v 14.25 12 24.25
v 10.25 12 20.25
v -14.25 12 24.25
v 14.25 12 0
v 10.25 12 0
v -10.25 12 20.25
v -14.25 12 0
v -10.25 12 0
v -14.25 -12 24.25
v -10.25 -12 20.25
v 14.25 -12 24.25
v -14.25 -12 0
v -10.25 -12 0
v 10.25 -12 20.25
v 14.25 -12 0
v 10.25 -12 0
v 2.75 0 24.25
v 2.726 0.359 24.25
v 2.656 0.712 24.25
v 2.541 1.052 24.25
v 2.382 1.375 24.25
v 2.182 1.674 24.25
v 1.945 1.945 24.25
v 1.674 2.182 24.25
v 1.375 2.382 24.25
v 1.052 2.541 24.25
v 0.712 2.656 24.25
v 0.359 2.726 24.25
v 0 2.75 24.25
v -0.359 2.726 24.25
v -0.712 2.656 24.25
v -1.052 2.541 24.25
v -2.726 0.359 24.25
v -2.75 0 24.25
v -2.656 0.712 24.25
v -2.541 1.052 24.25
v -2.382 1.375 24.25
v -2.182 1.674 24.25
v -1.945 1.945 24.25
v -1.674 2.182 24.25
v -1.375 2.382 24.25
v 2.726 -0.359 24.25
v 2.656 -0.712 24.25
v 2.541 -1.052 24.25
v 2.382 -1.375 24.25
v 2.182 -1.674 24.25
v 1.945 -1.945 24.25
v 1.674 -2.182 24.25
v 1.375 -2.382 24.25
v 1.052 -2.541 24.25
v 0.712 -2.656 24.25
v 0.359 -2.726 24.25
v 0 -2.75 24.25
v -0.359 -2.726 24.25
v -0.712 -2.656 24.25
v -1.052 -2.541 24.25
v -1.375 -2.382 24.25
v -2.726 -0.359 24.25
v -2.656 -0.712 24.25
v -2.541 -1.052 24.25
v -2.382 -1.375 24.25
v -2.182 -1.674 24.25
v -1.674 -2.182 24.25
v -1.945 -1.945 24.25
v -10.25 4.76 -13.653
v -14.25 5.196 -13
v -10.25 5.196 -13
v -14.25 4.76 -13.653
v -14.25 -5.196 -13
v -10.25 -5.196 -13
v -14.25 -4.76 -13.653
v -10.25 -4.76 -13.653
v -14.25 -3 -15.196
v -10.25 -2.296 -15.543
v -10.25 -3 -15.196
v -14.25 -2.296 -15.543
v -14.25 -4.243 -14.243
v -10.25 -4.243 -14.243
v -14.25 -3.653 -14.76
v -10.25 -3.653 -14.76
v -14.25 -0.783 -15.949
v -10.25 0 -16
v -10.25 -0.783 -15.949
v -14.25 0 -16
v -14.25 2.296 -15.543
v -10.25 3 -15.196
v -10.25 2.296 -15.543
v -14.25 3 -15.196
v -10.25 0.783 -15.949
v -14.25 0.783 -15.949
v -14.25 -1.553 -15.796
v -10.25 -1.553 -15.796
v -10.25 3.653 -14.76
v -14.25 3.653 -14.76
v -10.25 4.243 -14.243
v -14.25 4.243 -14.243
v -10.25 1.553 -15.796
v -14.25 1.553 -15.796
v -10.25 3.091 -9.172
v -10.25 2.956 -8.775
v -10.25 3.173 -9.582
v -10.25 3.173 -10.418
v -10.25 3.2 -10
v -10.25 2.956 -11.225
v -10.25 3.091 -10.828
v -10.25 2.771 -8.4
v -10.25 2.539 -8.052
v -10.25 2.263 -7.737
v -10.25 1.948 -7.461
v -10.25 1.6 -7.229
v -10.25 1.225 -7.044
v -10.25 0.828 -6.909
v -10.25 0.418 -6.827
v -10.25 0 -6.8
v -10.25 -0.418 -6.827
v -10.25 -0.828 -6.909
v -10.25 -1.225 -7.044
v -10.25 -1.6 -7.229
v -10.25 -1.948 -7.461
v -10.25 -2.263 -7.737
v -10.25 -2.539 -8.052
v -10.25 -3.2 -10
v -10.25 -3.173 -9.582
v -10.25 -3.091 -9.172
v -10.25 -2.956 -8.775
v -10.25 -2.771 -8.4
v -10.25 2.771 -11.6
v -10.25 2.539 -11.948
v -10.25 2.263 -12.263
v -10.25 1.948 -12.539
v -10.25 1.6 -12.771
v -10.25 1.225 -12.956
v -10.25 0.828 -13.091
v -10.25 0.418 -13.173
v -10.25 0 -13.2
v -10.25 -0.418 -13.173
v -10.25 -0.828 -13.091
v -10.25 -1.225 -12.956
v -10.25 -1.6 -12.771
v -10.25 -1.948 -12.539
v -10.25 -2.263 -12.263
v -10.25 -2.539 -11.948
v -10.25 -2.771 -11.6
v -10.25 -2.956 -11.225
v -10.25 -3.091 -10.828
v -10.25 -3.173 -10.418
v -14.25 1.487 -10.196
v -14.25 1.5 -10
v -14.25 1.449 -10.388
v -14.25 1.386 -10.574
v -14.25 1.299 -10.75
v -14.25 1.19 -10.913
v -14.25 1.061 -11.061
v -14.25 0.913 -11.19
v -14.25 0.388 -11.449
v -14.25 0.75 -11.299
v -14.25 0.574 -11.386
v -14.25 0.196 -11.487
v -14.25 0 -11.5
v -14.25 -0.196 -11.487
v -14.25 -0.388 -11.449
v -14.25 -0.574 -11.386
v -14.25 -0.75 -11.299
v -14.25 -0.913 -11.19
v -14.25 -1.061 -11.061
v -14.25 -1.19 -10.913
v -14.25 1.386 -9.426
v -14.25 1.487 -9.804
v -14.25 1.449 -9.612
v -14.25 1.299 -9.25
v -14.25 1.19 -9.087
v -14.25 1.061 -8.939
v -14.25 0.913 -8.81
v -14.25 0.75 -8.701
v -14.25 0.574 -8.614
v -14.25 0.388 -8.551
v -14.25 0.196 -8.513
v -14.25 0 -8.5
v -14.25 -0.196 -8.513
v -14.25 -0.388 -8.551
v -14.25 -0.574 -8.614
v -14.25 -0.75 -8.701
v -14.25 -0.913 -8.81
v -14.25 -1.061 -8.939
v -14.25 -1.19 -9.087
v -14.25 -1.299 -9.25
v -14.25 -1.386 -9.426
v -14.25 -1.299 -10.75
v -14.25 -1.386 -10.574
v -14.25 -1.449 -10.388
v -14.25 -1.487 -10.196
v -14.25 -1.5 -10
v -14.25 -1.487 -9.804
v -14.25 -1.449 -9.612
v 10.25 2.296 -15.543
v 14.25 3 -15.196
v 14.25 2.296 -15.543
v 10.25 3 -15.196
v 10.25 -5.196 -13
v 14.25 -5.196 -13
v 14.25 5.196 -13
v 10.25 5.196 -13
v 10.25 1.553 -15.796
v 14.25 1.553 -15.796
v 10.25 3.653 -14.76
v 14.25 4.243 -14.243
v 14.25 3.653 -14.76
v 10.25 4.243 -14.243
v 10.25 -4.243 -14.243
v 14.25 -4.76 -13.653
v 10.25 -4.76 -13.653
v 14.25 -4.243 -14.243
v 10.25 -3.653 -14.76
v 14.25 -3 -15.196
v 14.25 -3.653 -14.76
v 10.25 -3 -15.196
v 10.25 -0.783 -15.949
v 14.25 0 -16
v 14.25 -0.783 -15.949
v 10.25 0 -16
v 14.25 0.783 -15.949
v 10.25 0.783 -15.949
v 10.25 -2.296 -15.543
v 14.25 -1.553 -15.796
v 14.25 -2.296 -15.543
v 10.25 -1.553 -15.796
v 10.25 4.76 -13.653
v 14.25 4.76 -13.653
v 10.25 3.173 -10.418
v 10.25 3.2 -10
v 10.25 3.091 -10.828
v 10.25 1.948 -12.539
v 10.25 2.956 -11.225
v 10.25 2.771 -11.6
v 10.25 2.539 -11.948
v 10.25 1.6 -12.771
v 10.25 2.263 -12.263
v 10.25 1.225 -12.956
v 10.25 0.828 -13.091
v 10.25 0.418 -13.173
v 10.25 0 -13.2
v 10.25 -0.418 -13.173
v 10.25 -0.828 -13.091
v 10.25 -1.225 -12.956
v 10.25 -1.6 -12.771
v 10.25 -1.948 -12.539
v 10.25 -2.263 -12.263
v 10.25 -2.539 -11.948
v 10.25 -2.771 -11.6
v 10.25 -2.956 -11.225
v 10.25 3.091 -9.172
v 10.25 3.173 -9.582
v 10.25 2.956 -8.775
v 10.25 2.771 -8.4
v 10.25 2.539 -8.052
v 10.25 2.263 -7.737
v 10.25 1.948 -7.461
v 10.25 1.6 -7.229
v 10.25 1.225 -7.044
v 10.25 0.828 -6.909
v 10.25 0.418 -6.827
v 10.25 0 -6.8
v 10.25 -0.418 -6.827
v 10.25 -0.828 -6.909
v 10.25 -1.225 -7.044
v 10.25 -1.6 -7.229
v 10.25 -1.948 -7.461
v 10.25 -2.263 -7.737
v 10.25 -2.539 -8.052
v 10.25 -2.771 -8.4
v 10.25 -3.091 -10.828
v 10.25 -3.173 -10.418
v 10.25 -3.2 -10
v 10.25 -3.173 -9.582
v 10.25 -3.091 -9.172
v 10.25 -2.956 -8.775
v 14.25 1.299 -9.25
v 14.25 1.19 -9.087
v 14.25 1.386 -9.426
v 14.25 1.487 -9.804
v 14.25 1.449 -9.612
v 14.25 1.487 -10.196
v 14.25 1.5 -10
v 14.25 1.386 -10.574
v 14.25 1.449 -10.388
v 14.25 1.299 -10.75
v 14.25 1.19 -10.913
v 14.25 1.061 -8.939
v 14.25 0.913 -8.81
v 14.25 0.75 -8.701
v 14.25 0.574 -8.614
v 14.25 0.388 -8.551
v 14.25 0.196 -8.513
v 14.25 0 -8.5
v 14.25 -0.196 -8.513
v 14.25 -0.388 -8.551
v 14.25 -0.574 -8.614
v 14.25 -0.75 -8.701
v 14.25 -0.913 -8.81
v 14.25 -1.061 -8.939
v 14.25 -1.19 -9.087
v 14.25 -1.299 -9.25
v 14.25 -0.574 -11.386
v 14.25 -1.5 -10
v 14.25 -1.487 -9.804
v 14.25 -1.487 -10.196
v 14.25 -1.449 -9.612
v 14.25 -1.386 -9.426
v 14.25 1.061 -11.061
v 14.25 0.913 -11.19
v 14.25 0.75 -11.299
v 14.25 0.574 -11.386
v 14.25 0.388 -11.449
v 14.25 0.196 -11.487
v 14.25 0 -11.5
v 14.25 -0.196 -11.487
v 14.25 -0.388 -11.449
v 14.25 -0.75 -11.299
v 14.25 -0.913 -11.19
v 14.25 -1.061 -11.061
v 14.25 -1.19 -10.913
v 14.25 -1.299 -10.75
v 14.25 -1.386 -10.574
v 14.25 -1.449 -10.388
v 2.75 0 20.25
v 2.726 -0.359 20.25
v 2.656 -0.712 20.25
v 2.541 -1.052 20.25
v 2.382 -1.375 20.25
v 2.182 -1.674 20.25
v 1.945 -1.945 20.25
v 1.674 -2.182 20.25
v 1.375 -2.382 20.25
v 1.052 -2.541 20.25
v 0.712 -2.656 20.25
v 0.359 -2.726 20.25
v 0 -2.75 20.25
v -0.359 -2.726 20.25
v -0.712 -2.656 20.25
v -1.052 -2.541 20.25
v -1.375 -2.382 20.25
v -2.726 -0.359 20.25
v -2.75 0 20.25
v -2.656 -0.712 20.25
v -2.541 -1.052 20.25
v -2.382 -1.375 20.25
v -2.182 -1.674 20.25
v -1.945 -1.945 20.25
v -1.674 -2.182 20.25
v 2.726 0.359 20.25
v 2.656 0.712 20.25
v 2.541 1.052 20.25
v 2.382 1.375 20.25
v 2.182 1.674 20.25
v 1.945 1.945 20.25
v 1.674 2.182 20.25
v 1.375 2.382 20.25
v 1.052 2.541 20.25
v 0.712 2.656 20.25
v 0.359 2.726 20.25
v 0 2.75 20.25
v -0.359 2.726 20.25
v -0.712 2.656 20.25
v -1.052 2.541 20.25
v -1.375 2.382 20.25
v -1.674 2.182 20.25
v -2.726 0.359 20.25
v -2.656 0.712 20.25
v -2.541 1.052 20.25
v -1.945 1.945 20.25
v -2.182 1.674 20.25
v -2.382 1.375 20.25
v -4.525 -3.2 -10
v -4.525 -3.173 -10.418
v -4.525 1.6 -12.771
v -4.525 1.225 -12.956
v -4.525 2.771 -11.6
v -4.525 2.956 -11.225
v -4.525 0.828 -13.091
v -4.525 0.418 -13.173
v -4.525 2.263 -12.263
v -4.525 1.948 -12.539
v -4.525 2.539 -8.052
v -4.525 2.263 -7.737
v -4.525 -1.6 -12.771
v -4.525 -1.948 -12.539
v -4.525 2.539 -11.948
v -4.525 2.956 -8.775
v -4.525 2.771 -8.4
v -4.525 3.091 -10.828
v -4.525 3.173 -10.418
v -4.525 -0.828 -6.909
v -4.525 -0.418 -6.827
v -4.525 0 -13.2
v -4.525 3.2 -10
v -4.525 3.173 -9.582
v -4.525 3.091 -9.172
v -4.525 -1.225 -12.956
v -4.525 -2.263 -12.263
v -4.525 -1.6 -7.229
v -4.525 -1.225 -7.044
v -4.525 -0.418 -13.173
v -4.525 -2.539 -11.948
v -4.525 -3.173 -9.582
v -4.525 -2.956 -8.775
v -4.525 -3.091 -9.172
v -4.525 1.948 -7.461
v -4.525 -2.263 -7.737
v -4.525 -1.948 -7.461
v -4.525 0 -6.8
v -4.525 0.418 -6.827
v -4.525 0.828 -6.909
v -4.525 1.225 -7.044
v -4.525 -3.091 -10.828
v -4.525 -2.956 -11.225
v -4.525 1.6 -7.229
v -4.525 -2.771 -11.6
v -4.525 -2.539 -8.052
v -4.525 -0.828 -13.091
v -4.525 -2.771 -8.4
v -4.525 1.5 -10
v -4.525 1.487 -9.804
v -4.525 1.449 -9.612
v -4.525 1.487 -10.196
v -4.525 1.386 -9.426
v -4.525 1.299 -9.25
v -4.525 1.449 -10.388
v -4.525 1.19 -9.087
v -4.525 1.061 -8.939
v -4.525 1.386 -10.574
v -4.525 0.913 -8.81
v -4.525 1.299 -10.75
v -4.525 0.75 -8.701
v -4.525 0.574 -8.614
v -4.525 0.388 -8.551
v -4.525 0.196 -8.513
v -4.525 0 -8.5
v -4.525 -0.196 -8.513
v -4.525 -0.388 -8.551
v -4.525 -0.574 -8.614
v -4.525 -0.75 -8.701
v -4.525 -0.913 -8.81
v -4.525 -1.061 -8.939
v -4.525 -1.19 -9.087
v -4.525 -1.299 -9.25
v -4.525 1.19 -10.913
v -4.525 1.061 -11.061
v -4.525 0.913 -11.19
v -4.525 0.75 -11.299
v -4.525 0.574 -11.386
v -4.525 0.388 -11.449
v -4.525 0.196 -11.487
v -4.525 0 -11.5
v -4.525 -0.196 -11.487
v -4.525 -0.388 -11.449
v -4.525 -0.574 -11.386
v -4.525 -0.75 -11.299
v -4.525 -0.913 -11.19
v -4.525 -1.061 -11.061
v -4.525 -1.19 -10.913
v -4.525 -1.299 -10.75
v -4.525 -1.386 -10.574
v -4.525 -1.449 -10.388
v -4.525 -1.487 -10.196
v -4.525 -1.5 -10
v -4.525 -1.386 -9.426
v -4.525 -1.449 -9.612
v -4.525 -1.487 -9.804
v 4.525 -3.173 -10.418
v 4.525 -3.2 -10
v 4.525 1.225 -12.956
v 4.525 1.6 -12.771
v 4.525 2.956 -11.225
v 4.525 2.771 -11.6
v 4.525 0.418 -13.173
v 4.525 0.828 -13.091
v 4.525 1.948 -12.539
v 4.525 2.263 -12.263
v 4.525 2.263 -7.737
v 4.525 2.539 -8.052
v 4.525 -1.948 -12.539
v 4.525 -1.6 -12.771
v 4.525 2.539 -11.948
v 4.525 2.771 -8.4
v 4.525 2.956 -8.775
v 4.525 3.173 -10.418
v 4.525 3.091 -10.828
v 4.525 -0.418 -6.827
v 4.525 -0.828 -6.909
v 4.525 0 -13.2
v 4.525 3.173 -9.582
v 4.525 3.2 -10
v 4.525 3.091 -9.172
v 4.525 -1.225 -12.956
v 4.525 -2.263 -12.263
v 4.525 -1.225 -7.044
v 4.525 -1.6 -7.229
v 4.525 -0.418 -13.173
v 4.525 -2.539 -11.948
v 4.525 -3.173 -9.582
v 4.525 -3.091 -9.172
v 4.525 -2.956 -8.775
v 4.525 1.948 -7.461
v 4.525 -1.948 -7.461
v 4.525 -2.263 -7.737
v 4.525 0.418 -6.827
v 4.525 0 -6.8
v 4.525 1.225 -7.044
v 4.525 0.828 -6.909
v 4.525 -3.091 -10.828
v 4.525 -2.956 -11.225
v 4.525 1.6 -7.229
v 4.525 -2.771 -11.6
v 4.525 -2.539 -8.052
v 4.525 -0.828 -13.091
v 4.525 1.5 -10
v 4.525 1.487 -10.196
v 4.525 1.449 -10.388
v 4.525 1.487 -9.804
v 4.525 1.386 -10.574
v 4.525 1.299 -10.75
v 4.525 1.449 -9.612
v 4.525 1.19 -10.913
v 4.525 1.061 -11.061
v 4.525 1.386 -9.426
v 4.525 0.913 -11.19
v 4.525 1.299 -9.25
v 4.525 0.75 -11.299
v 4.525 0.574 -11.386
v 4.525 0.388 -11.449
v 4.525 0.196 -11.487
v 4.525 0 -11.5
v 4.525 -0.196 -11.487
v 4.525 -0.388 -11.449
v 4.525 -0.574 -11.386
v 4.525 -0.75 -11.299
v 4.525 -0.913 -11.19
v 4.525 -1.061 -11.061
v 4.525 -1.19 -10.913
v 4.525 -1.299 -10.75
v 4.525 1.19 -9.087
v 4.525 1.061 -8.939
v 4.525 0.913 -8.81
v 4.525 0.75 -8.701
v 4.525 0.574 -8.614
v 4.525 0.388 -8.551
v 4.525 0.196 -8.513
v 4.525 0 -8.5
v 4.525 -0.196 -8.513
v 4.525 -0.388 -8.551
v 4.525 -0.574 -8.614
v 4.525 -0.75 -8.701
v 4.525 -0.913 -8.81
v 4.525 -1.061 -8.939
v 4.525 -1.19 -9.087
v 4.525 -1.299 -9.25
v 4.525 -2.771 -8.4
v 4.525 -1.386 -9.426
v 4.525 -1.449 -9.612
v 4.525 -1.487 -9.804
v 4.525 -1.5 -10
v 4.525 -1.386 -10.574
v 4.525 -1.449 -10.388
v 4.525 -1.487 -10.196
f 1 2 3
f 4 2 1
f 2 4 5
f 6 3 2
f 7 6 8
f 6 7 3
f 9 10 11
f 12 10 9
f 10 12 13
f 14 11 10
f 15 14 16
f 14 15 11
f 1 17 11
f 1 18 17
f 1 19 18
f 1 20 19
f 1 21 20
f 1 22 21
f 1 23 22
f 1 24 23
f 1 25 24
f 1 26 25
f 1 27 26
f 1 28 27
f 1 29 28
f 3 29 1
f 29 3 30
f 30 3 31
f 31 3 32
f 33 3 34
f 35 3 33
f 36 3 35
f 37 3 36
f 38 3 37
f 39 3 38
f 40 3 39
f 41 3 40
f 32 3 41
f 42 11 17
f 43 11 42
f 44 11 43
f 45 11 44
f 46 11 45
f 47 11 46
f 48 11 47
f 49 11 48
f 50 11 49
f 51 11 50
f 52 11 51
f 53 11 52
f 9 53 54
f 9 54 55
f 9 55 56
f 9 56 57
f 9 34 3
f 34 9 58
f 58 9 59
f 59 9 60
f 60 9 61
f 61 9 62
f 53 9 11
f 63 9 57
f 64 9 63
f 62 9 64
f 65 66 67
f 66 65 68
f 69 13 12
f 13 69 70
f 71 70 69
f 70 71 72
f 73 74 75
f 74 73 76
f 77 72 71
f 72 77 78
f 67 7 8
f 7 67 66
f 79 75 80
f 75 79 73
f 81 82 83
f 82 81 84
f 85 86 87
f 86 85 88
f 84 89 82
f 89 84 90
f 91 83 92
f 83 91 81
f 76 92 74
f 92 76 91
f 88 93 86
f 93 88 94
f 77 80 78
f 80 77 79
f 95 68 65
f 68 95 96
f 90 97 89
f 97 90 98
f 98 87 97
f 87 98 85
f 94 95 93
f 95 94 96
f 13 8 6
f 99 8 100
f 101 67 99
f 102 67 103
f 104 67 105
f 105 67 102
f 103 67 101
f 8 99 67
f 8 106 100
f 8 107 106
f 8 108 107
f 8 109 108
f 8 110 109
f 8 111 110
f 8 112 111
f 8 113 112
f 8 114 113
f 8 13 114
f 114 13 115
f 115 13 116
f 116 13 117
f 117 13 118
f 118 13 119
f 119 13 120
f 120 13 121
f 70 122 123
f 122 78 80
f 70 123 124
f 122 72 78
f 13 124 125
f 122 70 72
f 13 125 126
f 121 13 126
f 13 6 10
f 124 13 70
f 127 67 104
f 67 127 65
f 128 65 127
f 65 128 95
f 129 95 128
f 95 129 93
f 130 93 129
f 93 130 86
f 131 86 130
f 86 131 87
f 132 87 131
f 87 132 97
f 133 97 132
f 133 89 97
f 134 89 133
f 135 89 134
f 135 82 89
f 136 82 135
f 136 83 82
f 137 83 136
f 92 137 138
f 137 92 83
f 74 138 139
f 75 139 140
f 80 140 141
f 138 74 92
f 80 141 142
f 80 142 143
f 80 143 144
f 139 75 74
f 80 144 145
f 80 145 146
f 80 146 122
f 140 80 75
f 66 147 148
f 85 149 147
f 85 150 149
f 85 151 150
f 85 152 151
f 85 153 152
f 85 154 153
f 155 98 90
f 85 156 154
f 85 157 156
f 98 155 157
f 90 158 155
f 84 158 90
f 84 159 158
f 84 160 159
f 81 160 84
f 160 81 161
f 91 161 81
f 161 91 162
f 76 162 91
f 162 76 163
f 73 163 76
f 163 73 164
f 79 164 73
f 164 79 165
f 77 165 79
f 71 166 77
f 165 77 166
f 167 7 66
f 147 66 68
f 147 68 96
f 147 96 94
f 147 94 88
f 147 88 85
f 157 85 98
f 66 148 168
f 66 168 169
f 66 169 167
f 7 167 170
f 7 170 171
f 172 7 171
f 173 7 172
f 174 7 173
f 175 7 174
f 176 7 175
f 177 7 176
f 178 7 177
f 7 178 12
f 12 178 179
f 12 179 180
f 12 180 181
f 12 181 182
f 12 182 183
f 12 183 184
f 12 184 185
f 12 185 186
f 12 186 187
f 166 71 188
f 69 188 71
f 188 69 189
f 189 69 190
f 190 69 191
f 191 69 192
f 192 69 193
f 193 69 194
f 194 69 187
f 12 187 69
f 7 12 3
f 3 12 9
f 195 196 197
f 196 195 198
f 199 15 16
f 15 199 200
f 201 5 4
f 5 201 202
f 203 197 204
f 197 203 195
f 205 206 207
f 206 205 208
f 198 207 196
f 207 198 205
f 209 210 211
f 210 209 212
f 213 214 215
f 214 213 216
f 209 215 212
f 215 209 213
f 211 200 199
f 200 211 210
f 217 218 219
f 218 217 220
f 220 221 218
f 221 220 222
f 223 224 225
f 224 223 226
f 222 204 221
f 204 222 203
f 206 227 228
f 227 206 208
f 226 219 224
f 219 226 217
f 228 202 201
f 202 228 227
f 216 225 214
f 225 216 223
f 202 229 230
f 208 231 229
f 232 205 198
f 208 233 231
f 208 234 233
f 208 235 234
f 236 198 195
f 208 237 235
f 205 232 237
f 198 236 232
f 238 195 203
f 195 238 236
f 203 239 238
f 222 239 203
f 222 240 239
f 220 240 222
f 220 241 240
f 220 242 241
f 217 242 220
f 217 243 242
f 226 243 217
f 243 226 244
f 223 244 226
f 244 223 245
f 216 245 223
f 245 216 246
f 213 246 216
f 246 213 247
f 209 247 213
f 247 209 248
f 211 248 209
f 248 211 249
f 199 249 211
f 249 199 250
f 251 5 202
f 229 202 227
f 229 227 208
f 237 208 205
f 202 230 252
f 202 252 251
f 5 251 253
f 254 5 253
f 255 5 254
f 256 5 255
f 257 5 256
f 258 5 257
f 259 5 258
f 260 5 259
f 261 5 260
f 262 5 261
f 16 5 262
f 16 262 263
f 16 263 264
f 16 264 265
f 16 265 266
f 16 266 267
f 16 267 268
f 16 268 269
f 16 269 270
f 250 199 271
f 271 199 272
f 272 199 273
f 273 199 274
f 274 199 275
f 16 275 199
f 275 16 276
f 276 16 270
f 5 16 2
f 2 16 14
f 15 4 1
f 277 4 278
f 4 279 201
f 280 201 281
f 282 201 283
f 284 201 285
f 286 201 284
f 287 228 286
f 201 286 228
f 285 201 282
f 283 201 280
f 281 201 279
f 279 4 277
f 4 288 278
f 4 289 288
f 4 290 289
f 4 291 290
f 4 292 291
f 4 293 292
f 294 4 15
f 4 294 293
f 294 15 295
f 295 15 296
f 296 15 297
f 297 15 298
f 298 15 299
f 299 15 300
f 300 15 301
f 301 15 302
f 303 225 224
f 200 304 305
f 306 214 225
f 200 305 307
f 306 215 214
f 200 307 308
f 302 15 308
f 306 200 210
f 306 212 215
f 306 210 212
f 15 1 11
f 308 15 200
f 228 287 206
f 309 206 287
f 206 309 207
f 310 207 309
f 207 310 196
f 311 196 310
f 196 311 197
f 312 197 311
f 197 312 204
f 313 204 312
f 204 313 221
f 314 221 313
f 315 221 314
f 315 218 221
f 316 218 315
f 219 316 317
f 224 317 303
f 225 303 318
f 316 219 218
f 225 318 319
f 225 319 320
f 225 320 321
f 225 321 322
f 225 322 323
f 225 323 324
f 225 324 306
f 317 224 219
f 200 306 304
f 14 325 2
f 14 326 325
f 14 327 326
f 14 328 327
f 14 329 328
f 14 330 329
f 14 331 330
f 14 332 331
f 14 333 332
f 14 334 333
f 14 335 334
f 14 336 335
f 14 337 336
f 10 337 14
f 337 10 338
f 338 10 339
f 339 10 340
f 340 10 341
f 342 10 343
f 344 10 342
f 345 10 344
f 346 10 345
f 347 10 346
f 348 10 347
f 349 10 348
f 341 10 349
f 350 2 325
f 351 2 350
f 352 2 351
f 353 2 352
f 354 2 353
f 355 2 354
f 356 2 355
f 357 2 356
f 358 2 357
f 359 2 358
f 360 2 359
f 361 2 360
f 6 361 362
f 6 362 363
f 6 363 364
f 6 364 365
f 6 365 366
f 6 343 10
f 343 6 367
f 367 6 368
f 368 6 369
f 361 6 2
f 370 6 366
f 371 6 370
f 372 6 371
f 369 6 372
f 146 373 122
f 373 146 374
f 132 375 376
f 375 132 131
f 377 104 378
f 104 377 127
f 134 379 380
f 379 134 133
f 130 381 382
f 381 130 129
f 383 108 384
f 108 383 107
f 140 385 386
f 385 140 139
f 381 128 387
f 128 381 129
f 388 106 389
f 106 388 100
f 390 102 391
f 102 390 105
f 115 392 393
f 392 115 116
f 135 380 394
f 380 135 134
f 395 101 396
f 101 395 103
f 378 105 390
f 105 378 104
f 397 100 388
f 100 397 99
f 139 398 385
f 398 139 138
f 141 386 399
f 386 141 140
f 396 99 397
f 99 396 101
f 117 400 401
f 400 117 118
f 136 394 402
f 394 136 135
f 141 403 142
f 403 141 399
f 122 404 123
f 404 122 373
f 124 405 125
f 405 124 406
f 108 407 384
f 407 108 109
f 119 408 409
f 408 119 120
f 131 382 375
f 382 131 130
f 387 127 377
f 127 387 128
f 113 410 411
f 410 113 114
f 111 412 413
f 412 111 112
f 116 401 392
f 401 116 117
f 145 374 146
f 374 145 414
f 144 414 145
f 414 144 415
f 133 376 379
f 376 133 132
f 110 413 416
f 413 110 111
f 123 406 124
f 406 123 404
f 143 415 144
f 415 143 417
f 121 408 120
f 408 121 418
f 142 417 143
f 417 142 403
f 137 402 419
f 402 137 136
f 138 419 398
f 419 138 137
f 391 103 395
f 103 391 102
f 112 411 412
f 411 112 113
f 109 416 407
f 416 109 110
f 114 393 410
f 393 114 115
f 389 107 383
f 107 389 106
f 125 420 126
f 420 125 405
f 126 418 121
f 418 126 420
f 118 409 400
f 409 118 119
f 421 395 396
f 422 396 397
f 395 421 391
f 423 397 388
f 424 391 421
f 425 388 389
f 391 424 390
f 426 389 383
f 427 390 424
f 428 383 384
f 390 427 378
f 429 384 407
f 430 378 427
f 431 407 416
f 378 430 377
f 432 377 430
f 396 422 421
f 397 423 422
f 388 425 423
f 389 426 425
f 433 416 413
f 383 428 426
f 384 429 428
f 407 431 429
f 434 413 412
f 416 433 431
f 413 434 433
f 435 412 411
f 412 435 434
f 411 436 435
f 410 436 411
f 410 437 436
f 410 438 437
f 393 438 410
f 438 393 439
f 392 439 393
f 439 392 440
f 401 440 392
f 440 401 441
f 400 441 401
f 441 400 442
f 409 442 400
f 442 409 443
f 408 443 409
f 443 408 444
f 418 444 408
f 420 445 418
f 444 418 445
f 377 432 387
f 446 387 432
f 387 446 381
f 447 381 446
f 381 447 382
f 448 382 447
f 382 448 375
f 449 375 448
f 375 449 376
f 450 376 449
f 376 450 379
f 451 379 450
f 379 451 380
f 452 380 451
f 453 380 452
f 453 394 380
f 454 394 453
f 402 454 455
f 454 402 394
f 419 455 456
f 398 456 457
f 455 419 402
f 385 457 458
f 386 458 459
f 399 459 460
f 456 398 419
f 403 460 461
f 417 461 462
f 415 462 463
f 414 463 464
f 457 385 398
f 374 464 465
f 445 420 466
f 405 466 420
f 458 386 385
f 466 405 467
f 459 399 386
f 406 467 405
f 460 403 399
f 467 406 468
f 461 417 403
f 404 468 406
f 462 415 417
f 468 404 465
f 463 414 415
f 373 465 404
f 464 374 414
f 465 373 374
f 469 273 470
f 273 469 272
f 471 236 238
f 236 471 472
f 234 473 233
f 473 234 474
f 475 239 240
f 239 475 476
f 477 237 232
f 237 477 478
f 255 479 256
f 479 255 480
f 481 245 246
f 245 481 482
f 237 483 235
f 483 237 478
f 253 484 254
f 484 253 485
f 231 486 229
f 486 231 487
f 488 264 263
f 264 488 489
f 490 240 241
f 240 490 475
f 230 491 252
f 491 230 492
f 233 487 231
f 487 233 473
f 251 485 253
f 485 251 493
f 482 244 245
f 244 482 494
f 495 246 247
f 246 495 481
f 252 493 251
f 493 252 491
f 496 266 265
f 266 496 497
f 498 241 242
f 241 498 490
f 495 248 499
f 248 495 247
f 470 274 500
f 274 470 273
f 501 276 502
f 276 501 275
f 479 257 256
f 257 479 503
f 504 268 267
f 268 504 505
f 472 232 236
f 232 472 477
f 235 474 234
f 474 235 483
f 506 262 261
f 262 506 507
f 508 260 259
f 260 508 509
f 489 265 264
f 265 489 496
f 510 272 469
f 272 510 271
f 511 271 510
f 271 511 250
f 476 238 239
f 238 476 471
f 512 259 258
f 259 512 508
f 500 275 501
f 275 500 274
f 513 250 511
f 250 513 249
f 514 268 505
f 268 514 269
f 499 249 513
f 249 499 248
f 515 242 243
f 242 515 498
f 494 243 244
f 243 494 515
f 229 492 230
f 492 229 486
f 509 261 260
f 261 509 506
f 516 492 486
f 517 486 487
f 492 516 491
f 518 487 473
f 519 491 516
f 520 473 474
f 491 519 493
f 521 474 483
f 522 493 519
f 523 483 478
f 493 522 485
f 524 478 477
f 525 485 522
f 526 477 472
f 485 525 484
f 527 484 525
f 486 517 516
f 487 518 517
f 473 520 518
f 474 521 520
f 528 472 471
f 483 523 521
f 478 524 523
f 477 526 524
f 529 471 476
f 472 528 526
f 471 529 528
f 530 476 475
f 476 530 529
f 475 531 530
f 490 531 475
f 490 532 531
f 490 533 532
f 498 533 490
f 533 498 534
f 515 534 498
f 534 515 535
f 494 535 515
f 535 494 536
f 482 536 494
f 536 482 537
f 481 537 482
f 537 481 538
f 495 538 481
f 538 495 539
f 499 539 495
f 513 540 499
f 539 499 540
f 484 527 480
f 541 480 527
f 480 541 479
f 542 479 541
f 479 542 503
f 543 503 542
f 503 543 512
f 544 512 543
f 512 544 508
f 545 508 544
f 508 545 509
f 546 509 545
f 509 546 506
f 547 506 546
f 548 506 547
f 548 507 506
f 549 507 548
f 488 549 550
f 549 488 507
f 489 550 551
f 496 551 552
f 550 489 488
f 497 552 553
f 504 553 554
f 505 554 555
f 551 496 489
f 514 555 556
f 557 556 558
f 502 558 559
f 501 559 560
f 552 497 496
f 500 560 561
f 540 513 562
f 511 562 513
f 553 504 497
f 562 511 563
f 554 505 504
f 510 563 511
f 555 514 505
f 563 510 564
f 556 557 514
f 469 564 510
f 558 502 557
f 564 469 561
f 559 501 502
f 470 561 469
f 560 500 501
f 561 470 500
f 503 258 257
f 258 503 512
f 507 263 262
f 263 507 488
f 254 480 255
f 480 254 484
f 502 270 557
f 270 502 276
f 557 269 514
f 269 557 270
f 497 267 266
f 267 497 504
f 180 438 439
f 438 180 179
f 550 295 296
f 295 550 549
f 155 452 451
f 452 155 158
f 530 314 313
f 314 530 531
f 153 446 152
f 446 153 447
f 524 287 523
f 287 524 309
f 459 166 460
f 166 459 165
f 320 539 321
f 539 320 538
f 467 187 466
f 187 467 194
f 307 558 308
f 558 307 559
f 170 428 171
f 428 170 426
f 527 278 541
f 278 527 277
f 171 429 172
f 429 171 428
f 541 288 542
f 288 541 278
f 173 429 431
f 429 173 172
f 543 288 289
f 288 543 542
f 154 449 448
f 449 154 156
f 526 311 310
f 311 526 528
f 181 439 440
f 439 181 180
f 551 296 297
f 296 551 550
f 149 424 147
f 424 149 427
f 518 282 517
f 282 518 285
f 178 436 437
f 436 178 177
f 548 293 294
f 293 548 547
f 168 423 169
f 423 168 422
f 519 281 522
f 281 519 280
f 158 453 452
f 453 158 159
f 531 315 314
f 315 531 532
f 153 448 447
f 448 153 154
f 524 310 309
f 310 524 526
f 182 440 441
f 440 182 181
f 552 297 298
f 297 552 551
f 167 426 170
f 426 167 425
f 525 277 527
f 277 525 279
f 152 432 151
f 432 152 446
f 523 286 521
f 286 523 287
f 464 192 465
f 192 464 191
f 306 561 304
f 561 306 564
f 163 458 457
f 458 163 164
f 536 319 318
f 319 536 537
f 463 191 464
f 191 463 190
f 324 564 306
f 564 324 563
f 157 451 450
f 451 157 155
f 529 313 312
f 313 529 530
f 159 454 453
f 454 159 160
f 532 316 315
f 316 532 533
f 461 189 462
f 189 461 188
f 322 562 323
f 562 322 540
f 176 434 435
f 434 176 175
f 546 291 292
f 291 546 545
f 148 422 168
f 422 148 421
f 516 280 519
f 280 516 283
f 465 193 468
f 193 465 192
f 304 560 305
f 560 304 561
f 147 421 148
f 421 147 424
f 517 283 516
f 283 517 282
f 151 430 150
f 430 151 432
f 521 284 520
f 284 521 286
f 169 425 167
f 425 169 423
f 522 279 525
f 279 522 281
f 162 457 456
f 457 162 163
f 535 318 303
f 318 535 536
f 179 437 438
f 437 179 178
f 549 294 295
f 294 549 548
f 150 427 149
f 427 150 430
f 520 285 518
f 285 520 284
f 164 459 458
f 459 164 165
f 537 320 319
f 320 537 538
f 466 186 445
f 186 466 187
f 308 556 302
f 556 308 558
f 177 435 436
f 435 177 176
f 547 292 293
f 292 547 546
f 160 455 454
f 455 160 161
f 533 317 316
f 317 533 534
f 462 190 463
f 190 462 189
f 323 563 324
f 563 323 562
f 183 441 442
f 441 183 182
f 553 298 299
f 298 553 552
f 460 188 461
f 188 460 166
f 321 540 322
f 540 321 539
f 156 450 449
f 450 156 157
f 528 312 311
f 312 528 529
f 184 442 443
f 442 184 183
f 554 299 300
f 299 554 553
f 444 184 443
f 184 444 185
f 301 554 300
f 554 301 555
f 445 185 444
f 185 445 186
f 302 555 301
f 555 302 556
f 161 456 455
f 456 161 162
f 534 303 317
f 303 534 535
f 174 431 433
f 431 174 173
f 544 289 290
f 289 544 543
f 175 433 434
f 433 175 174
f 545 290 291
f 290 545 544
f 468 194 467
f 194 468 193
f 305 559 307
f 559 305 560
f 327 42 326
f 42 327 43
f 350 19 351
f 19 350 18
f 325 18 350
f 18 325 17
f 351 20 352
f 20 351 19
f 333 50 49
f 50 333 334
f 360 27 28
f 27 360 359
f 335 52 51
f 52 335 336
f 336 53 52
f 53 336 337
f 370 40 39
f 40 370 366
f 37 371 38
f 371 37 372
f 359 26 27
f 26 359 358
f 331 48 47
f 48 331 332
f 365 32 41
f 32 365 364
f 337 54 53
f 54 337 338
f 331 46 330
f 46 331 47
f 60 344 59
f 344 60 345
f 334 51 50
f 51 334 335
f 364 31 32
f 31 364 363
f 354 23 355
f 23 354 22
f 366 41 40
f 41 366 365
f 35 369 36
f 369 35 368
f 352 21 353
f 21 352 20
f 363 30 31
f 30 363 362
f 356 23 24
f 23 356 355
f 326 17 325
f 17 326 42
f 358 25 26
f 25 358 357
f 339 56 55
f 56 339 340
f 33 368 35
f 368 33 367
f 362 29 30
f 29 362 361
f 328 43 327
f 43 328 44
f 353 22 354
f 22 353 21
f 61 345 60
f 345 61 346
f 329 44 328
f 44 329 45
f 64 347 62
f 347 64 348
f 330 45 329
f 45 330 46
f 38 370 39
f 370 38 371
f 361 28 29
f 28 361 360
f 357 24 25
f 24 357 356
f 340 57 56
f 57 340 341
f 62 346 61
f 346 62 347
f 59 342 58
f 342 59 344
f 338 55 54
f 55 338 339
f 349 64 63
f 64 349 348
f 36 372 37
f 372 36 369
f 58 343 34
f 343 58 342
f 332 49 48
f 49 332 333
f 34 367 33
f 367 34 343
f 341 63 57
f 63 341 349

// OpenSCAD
// file: common-2020.scad
// Shared socket geometry for the scanner stand brackets.
// A socket holds the end of a 2020 profile running down -Z from its closed end at z=0.

$fn = 48;

profile     = 20;
clearance   = 0.25;   // per side; raise if the profile will not slide in
wall        = 4;
depth       = 30;     // how far a profile slides into a socket
screw_d     = 5.5;
screw_depth = [9, 22];

inner = profile + 2 * clearance;
outer = inner + 2 * wall;
far   = 400;          // long enough to clear anything a hull adds in a profile's path

module socket_body() translate([-outer / 2, -outer / 2, -depth]) cube([outer, outer, depth + wall]);

module socket_void() translate([-inner / 2, -inner / 2, -far]) cube([inner, inner, far]);

// M5 holes through the front and back walls, into T-nuts in the profile's slots.
module socket_screws(depths = screw_depth)
    for (d = depths)
        translate([0, 0, -d]) rotate([90, 0, 0]) cylinder(d = screw_d, h = outer + 2, center = true);
// file: saddle-2020.scad
// Shared geometry for the mounts that hang on the cross bar.
// A saddle is an upside-down U that drops onto the bar from above, with arms reaching
// below it. A pin through the arms carries the camera case from thingiverse:2615180
// (pi_camera_case_bottom.stl) on its own hinge, so the camera looks down.
// The bar runs along Y with its bottom face at z=0; the camera hangs toward +Y.

include <common-2020.scad>

// The case's hinge: two knuckles 2 mm wide, 4.66 mm apart, 6.4 mm across.
knuckle_d   = 6.4;
knuckle_gap = 0.2;    // play beside each of the case's knuckles; the cap takes it up
case_outer  = 4.33;   // the case's knuckles end this far either side of centre
pin_d       = 3;      // snug on the printed pin; printed holes come out a little small

drop        = 10;     // pin below the bar; the case's back then clears the bar by 3 mm
arm_end     = 6;      // radius of the arms' rounded ends around the pin

saddle_top  = profile + clearance + wall;

module pin_axis(y) translate([0, y, -drop]) rotate([0, 90, 0]) children();

// The U itself, from `from` to `to` along the bar, with its arms drawn out to the pin.
module saddle(from, to, pin_y) {
    for (s = [-1, 1]) hull() {
        translate([s > 0 ? inner / 2 : -outer / 2, from, 0]) cube([wall, to - from, saddle_top]);
        translate([s * (inner + wall) / 2, 0, 0]) pin_axis(pin_y) cylinder(r = arm_end, h = wall, center = true);
    }
    translate([-outer / 2, from, saddle_top - wall]) cube([outer, to - from, wall]);
}

// Bosses from each arm in to the case's knuckles, so the case hangs centred.
module bosses(pin_y)
    for (s = [-1, 1]) {
        from = case_outer + knuckle_gap;
        translate([s * (from + inner / 2) / 2, 0, 0])
            pin_axis(pin_y) cylinder(d = knuckle_d, h = inner / 2 - from + 0.01, center = true);
    }

module pin_hole(pin_y) pin_axis(pin_y) cylinder(d = pin_d, h = outer + 2, center = true);

// M5 into a T-nut in the bar's top slot, so the saddle cannot slide along the bar.
module lock_screw(y) translate([0, y, profile]) cylinder(d = screw_d, h = wall + clearance + 2);
// main file
// Camera mount for the triangle stand: the camera alone, hanging under the cross bar.
// For the Pi and the camera together on one part, use pi-camera-mount.scad instead.
//
// Hardware: hinge-pin.scad (pin, cap and spacer), with the case's knuckles drilled
// out to 3 mm. Optional: 1x M5x10 + M5 T-nut in the bar's top slot to stop it sliding.
// Print standing on one end of the saddle; PETG, 4+ walls, 40% infill, no supports.

include <saddle-2020.scad>

length = 24;   // along the bar

difference() {
    union() { saddle(-length / 2, length / 2, 0); bosses(0); }
    pin_hole(0);
    lock_screw(0);
}
